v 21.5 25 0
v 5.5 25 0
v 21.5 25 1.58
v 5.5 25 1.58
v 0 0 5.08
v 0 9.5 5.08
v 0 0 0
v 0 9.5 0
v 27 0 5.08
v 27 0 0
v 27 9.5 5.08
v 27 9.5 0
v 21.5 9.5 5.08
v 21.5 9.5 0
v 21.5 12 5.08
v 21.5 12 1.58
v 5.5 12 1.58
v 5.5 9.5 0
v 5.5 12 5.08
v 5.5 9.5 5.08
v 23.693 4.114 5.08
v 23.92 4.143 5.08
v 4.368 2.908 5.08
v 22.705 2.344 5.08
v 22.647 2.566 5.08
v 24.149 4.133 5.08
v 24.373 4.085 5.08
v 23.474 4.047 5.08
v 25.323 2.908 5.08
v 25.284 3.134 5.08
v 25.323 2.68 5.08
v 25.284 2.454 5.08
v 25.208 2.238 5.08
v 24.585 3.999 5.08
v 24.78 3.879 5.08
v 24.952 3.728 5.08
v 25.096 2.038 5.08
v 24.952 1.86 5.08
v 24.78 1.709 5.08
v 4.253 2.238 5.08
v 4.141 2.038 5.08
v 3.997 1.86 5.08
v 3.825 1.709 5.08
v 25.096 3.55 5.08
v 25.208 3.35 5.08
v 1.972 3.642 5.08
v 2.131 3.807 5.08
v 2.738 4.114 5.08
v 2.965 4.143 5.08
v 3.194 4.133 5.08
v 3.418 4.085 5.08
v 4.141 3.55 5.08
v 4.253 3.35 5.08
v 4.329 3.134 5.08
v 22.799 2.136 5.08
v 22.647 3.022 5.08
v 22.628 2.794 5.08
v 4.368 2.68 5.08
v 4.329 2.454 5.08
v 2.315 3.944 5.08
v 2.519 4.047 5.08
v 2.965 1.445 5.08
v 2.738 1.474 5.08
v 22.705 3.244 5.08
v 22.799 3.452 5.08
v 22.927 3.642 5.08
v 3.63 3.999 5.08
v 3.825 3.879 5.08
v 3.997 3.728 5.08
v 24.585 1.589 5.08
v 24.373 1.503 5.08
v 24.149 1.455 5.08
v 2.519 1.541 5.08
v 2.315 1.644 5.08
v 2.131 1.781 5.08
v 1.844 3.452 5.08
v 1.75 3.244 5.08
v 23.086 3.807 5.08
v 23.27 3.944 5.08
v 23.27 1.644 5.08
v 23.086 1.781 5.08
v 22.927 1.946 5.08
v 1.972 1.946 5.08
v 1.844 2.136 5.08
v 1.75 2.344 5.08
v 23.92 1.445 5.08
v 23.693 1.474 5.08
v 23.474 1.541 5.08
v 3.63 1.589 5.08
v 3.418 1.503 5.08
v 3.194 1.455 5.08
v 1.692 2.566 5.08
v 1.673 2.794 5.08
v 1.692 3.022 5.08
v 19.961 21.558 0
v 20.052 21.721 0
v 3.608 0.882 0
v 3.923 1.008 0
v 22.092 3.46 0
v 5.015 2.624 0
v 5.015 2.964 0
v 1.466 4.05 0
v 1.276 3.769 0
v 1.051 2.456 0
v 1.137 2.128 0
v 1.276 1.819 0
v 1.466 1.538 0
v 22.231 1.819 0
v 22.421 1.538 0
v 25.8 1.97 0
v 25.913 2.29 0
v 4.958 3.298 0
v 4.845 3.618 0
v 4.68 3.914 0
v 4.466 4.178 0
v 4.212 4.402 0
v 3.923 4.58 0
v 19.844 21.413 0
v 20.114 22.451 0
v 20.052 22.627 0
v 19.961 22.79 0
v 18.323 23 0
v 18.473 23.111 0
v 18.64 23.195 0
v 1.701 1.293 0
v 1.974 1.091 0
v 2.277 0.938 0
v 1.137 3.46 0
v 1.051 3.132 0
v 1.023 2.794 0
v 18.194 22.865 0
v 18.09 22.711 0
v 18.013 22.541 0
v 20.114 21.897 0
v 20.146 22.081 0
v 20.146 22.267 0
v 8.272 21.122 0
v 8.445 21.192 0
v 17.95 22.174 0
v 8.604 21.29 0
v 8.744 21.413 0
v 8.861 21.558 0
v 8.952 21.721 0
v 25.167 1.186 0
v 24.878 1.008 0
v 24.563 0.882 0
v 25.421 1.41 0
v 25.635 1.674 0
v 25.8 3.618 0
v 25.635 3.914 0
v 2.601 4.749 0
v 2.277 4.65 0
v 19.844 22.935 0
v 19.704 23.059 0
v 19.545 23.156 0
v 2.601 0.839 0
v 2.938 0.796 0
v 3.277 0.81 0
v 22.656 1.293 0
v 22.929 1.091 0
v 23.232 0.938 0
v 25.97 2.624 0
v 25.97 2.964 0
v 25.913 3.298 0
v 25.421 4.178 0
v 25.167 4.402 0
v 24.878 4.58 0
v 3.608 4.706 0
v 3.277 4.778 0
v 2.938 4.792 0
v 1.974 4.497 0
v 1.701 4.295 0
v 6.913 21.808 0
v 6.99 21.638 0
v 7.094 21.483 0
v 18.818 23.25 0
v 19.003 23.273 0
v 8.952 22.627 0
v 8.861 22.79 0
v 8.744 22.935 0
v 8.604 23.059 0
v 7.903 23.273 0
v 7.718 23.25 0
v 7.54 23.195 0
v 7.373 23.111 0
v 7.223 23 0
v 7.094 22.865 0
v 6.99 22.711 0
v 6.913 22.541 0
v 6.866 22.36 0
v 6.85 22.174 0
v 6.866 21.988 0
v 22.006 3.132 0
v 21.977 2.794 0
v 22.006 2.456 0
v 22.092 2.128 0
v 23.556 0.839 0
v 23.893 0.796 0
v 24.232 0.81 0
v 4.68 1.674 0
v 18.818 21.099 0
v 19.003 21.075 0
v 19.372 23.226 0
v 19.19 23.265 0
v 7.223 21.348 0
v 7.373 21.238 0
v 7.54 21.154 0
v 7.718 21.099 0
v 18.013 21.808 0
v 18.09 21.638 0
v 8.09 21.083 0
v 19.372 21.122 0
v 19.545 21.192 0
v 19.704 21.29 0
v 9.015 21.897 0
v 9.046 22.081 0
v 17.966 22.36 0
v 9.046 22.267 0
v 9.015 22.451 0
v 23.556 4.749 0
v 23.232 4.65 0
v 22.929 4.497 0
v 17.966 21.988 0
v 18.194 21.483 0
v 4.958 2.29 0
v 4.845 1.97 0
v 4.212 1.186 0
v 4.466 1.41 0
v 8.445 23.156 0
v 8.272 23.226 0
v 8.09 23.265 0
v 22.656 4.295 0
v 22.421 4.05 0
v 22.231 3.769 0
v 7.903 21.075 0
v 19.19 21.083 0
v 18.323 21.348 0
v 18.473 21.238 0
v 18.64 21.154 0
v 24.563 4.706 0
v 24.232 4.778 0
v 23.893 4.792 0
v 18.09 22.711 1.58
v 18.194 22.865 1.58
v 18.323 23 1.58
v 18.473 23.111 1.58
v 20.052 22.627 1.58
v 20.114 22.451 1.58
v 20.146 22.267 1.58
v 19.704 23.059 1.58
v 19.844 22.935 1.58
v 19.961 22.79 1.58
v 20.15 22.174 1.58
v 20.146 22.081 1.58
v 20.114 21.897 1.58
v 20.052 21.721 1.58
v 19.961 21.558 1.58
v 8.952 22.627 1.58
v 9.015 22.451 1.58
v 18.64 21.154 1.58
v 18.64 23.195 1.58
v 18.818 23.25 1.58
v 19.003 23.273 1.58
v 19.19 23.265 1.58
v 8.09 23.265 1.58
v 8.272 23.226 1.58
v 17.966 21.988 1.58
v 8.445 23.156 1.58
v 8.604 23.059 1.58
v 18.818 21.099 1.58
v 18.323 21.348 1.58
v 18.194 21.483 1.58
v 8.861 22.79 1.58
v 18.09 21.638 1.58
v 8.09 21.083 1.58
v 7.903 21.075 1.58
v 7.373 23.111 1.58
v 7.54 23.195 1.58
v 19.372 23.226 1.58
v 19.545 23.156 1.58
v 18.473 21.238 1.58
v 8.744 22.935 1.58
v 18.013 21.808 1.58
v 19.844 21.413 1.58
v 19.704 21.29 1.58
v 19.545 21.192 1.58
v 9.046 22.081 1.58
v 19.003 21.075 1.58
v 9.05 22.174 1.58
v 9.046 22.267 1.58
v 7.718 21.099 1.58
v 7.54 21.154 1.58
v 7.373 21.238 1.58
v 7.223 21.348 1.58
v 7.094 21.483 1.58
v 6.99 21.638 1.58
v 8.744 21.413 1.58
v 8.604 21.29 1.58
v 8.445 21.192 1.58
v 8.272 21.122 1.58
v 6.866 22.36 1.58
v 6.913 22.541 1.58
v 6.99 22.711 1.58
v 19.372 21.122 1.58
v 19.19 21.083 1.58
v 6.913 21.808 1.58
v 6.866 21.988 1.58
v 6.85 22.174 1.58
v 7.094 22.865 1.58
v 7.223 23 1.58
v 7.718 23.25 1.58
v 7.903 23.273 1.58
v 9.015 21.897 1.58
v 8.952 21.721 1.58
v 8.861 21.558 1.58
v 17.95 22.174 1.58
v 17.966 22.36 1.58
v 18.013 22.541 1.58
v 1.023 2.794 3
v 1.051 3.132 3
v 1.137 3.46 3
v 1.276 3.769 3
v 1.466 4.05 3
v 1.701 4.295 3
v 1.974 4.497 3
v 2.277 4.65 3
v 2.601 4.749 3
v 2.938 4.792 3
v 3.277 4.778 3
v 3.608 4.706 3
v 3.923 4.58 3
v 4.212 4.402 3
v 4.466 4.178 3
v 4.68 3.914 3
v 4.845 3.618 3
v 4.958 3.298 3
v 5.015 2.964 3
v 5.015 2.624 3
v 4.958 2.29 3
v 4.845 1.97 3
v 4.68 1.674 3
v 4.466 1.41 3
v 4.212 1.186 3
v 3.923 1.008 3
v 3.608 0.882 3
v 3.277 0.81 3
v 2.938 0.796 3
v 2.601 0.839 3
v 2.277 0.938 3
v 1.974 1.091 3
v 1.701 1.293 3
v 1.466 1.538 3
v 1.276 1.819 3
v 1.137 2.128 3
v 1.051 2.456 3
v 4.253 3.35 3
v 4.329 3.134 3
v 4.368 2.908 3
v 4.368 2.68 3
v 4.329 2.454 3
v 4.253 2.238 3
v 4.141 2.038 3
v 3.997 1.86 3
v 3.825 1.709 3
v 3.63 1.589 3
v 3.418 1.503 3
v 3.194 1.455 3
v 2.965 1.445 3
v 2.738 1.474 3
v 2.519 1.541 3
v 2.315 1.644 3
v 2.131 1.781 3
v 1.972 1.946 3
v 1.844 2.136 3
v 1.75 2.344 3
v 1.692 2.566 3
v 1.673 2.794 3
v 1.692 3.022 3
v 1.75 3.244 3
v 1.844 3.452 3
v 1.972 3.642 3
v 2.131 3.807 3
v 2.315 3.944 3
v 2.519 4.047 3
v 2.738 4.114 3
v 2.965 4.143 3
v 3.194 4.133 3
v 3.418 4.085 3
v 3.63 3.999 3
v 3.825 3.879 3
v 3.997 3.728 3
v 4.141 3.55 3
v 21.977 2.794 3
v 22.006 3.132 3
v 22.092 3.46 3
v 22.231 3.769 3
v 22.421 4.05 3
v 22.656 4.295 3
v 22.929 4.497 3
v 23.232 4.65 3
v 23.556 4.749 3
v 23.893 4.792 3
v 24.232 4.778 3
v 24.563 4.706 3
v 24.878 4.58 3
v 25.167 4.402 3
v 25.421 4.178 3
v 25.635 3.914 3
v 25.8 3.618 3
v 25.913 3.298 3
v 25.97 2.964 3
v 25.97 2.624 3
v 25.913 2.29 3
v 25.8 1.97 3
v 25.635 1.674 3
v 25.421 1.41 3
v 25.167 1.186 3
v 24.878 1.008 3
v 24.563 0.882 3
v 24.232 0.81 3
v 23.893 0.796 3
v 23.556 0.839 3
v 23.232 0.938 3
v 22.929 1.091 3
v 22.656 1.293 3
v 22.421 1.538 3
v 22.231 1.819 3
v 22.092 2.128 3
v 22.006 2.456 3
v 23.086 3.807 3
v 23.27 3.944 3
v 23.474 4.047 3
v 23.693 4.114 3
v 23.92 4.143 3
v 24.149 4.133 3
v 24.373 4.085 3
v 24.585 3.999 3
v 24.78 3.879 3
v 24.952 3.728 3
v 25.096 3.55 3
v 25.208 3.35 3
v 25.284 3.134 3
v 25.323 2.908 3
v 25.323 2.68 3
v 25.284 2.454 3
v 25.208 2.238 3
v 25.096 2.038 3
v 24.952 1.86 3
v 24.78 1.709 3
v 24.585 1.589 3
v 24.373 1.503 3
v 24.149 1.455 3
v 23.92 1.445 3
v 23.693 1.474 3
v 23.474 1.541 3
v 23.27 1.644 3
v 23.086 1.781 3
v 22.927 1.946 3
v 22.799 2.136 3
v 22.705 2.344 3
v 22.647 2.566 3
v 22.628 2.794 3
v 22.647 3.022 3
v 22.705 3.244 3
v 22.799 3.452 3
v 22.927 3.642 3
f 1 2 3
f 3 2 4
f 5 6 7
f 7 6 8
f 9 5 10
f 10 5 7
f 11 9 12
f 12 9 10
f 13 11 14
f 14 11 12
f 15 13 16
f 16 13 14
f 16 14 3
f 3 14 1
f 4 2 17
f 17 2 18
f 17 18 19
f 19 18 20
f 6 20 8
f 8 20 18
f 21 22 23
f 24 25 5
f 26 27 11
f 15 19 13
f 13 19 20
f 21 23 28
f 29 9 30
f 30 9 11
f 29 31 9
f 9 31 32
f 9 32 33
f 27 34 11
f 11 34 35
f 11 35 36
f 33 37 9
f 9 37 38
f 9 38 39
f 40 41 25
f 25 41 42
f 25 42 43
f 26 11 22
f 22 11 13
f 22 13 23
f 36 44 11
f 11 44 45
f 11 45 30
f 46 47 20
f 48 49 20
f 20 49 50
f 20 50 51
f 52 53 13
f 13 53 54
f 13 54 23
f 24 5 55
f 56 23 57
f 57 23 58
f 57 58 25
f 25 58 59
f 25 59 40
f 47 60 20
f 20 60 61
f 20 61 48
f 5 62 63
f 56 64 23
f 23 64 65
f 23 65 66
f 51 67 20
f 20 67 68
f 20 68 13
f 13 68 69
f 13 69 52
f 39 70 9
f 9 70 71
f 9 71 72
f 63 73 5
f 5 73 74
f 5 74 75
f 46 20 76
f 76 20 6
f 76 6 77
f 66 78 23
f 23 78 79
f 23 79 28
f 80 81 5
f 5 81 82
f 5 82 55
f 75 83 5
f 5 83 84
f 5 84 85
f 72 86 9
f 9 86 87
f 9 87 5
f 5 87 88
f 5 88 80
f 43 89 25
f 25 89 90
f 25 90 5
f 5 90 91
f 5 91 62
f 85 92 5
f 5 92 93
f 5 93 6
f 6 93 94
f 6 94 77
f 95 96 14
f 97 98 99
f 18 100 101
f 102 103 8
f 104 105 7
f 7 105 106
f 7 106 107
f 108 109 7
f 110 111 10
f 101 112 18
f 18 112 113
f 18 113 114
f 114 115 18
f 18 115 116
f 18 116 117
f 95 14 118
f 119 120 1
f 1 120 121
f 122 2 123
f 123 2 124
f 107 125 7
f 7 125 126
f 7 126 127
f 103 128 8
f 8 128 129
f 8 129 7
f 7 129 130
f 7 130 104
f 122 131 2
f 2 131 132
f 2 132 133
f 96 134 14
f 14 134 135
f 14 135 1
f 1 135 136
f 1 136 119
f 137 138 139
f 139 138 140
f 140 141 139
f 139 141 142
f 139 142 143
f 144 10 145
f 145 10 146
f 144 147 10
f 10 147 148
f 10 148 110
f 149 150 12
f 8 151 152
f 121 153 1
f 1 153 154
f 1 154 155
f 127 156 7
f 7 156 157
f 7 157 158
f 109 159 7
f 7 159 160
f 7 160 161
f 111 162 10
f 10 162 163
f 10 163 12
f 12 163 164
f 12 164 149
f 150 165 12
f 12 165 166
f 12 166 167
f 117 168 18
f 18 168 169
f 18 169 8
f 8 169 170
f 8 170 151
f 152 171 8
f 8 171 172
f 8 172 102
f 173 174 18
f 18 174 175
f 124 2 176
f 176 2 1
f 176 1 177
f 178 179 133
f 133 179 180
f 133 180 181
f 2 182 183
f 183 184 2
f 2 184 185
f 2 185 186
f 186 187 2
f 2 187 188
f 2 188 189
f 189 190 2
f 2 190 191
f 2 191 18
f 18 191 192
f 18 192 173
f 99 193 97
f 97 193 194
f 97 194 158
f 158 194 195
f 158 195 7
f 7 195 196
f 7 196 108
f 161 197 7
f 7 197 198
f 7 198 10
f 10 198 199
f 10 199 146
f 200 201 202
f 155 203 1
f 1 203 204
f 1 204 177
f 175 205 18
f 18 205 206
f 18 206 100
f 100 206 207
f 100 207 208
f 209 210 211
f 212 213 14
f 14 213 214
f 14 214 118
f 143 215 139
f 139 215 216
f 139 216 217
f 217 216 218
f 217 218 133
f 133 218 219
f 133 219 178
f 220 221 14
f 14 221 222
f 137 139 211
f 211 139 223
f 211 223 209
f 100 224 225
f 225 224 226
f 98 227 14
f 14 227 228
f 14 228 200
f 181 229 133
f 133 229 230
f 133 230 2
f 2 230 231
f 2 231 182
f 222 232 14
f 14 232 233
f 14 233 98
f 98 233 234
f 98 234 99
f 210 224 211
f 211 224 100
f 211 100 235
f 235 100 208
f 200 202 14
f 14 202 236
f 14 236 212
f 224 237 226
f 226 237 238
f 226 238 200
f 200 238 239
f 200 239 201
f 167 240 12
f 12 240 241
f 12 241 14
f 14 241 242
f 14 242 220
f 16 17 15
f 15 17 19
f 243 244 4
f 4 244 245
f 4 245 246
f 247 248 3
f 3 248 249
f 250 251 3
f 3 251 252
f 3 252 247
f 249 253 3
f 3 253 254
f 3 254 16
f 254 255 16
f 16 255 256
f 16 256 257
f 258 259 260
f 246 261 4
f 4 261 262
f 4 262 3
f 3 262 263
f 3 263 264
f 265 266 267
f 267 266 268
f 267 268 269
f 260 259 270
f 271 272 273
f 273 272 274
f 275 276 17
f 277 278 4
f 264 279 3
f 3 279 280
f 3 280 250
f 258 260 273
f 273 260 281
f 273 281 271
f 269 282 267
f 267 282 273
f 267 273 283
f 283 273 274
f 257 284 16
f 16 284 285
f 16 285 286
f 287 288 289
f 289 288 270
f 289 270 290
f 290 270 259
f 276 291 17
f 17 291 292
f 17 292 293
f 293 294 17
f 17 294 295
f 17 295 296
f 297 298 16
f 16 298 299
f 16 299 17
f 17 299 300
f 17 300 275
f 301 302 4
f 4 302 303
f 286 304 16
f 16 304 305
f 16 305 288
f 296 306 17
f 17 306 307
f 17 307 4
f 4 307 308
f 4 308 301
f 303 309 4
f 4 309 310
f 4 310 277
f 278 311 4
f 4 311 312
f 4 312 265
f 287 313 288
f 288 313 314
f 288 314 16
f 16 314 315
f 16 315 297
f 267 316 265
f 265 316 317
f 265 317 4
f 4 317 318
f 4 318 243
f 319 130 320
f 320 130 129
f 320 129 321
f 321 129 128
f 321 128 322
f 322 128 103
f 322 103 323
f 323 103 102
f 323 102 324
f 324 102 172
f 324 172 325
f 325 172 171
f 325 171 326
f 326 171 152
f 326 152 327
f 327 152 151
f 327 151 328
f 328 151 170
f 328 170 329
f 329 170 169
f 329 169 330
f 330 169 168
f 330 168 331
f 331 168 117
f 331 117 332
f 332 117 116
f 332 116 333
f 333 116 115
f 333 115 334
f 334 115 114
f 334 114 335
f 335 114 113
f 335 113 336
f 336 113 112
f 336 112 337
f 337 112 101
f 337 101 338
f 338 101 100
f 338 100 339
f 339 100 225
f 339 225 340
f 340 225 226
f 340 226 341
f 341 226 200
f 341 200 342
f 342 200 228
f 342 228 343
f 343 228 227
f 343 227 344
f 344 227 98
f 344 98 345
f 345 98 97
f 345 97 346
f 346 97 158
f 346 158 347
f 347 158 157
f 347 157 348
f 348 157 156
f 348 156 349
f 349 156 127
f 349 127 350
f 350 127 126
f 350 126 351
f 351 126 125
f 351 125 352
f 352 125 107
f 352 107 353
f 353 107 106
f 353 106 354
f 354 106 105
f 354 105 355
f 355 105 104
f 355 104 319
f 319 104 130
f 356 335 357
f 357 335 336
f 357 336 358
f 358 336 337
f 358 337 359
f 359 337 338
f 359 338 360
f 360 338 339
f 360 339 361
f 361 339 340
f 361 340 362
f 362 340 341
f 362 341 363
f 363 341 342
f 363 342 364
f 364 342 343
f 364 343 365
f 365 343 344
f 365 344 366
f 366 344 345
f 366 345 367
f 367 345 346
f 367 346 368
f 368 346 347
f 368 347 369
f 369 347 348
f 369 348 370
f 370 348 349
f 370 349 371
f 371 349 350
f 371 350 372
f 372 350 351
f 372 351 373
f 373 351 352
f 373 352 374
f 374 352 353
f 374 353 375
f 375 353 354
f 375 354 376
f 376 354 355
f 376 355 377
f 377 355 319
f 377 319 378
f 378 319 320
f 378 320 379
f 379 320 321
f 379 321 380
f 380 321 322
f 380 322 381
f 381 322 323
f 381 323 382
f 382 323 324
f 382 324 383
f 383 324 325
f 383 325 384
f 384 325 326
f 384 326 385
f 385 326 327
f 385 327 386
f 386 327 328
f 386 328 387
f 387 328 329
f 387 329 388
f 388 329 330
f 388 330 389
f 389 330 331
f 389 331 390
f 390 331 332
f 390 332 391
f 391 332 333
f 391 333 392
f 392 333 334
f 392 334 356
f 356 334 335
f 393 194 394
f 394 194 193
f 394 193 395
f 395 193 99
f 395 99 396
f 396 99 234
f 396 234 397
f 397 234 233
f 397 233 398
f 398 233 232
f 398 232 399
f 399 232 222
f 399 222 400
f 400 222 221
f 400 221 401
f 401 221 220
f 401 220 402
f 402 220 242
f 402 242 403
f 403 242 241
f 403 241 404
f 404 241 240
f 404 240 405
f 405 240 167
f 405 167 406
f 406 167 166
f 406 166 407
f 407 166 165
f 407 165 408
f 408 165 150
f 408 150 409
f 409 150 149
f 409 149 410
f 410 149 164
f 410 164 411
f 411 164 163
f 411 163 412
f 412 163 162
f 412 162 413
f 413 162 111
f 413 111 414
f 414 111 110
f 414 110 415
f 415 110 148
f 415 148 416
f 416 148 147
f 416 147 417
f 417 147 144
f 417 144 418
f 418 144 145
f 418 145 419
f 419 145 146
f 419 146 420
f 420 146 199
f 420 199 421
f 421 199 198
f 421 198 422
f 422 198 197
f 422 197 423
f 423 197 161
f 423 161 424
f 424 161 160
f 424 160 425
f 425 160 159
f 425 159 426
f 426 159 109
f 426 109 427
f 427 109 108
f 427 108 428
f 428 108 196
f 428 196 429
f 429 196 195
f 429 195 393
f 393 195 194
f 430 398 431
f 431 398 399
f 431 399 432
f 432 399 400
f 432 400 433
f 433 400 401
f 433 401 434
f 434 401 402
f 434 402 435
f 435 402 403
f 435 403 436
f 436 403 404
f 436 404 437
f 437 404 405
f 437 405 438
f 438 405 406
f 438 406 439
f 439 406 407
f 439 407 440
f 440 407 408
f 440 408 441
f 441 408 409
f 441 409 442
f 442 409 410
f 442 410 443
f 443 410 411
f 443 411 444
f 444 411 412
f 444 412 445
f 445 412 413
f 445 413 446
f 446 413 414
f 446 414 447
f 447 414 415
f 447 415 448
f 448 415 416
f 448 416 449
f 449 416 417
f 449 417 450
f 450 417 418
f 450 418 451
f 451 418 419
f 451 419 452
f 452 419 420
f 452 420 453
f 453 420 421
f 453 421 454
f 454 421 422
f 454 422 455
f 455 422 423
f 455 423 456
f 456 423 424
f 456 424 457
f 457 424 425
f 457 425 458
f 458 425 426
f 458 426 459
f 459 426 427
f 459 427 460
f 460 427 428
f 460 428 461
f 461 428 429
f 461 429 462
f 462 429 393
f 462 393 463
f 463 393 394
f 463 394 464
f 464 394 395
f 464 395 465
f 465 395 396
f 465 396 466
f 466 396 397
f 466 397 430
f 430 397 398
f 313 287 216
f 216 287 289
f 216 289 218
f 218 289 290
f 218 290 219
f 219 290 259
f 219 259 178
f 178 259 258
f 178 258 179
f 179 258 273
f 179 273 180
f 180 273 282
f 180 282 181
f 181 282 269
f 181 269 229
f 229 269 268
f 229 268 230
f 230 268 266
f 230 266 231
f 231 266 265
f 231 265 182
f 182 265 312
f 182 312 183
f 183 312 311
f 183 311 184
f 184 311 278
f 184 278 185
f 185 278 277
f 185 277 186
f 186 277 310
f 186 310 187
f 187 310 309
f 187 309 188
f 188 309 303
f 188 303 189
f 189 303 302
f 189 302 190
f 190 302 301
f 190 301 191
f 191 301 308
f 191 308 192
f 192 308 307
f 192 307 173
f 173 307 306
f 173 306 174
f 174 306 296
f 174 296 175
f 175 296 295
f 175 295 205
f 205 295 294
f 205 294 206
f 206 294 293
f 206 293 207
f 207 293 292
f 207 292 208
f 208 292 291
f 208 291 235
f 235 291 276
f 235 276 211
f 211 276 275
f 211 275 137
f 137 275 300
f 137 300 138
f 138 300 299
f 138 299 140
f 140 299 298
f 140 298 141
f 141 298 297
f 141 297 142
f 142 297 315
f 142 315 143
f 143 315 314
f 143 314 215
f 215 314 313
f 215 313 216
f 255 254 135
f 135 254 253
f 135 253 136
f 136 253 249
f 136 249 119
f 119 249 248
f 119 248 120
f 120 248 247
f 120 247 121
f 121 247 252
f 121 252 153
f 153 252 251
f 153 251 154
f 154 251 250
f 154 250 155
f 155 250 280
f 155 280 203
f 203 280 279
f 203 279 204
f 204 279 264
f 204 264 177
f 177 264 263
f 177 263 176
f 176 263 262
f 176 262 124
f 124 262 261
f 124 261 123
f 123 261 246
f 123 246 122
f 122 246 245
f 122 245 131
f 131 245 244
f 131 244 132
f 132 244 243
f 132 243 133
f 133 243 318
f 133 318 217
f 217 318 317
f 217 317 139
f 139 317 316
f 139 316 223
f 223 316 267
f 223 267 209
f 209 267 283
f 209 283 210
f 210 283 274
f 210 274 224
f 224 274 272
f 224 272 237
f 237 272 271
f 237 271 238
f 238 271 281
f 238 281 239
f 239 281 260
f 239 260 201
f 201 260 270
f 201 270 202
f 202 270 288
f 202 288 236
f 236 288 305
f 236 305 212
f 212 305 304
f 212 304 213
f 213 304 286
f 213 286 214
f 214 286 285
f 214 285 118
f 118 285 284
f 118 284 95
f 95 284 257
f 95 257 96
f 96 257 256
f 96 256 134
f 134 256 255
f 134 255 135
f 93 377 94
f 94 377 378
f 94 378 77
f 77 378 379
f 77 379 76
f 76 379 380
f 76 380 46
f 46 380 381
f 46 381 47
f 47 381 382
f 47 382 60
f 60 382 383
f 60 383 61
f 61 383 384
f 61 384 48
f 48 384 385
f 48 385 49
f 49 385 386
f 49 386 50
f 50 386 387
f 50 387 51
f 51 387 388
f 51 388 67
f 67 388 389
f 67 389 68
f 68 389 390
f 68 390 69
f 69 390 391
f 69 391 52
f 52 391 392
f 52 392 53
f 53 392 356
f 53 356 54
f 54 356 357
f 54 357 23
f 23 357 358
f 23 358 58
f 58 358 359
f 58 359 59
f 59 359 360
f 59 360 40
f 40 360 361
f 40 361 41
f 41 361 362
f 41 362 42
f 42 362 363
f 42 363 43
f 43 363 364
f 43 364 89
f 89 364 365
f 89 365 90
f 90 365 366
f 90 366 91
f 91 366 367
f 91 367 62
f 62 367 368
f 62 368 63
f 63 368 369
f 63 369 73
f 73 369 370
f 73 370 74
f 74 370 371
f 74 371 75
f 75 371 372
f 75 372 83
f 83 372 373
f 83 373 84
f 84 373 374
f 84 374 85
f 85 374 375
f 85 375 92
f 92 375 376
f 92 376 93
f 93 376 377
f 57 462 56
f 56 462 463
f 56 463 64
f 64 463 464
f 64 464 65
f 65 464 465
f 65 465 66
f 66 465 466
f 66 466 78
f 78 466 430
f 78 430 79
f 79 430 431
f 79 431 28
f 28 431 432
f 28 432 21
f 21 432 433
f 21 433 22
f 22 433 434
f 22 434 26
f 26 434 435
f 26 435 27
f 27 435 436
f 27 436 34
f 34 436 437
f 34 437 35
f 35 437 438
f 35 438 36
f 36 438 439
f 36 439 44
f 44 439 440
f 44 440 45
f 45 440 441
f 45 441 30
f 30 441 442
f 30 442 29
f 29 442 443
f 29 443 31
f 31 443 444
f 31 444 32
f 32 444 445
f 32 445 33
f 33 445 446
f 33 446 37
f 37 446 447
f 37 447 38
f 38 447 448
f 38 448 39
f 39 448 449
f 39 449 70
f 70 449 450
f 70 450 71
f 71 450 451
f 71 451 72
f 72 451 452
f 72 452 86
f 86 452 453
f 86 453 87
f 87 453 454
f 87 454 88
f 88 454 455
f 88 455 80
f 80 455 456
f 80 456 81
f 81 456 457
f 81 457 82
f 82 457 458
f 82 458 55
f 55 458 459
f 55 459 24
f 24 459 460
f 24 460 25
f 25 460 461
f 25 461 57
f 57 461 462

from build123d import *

# Parameters (mm, degrees)
BOSS_EXTRUDE1_DEPTH = 5.08
SKETCH2_W           = 16
SKETCH2_H           = 13
CUT_EXTRUDE1_DEPTH  = 3.5
SKETCH3_R           = 2
CUT_EXTRUDE2_DEPTH  = 3
SKETCH4_R           = 1.1
CUT_EXTRUDE3_DEPTH  = 21
SKETCH5_R           = 1.35
CUT_EXTRUDE4_DEPTH  = 21


with BuildPart() as part:
    # Sketch1 → Boss-Extrude1 (new body)
    with BuildSketch(Plane.XY):
        Polygon((0, 9.5), (5.5, 9.5), (5.5, 25), (21.5, 25), (21.5, 9.5), (27, 9.5), (27, 0), (0, 0), align=None)
    extrude(amount=BOSS_EXTRUDE1_DEPTH)

    # Sketch2 → Cut-Extrude1 (cut)
    with BuildSketch(Plane.XY.offset(5.08)):
        with Locations((13.5, 18.5)):
            Rectangle(SKETCH2_W, SKETCH2_H)
    extrude(amount=-CUT_EXTRUDE1_DEPTH, mode=Mode.SUBTRACT)

    # Sketch3 → Cut-Extrude2 (cut)
    with BuildSketch(Plane(origin=(0, 0, 0), x_dir=(-1, 0, 0), z_dir=(0, 0, -1))):
        with Locations((-23.9775, 2.794)):
            Circle(SKETCH3_R)
        with Locations((-3.0225, 2.794)):
            Circle(SKETCH3_R)
    extrude(amount=-CUT_EXTRUDE2_DEPTH, mode=Mode.SUBTRACT)

    # Sketch4 → Cut-Extrude3 (cut)
    with BuildSketch(Plane(origin=(0, 0, 0), x_dir=(-1, 0, 0), z_dir=(0, 0, -1))):
        with Locations((-19.0499, 22.1742)):
            Circle(SKETCH4_R)
        with Locations((-7.9501, 22.1742)):
            Circle(SKETCH4_R)
    extrude(amount=-CUT_EXTRUDE3_DEPTH, mode=Mode.SUBTRACT)

    # Sketch5 → Cut-Extrude4 (cut)
    with BuildSketch(Plane(origin=(0, 0, 3), x_dir=(-1, 0, 0), z_dir=(0, 0, -1))):
        with Locations((-23.9775, 2.794)):
            Circle(SKETCH5_R)
        with Locations((-3.0225, 2.794)):
            Circle(SKETCH5_R)
    extrude(amount=-CUT_EXTRUDE4_DEPTH, mode=Mode.SUBTRACT)


solid = part.part
